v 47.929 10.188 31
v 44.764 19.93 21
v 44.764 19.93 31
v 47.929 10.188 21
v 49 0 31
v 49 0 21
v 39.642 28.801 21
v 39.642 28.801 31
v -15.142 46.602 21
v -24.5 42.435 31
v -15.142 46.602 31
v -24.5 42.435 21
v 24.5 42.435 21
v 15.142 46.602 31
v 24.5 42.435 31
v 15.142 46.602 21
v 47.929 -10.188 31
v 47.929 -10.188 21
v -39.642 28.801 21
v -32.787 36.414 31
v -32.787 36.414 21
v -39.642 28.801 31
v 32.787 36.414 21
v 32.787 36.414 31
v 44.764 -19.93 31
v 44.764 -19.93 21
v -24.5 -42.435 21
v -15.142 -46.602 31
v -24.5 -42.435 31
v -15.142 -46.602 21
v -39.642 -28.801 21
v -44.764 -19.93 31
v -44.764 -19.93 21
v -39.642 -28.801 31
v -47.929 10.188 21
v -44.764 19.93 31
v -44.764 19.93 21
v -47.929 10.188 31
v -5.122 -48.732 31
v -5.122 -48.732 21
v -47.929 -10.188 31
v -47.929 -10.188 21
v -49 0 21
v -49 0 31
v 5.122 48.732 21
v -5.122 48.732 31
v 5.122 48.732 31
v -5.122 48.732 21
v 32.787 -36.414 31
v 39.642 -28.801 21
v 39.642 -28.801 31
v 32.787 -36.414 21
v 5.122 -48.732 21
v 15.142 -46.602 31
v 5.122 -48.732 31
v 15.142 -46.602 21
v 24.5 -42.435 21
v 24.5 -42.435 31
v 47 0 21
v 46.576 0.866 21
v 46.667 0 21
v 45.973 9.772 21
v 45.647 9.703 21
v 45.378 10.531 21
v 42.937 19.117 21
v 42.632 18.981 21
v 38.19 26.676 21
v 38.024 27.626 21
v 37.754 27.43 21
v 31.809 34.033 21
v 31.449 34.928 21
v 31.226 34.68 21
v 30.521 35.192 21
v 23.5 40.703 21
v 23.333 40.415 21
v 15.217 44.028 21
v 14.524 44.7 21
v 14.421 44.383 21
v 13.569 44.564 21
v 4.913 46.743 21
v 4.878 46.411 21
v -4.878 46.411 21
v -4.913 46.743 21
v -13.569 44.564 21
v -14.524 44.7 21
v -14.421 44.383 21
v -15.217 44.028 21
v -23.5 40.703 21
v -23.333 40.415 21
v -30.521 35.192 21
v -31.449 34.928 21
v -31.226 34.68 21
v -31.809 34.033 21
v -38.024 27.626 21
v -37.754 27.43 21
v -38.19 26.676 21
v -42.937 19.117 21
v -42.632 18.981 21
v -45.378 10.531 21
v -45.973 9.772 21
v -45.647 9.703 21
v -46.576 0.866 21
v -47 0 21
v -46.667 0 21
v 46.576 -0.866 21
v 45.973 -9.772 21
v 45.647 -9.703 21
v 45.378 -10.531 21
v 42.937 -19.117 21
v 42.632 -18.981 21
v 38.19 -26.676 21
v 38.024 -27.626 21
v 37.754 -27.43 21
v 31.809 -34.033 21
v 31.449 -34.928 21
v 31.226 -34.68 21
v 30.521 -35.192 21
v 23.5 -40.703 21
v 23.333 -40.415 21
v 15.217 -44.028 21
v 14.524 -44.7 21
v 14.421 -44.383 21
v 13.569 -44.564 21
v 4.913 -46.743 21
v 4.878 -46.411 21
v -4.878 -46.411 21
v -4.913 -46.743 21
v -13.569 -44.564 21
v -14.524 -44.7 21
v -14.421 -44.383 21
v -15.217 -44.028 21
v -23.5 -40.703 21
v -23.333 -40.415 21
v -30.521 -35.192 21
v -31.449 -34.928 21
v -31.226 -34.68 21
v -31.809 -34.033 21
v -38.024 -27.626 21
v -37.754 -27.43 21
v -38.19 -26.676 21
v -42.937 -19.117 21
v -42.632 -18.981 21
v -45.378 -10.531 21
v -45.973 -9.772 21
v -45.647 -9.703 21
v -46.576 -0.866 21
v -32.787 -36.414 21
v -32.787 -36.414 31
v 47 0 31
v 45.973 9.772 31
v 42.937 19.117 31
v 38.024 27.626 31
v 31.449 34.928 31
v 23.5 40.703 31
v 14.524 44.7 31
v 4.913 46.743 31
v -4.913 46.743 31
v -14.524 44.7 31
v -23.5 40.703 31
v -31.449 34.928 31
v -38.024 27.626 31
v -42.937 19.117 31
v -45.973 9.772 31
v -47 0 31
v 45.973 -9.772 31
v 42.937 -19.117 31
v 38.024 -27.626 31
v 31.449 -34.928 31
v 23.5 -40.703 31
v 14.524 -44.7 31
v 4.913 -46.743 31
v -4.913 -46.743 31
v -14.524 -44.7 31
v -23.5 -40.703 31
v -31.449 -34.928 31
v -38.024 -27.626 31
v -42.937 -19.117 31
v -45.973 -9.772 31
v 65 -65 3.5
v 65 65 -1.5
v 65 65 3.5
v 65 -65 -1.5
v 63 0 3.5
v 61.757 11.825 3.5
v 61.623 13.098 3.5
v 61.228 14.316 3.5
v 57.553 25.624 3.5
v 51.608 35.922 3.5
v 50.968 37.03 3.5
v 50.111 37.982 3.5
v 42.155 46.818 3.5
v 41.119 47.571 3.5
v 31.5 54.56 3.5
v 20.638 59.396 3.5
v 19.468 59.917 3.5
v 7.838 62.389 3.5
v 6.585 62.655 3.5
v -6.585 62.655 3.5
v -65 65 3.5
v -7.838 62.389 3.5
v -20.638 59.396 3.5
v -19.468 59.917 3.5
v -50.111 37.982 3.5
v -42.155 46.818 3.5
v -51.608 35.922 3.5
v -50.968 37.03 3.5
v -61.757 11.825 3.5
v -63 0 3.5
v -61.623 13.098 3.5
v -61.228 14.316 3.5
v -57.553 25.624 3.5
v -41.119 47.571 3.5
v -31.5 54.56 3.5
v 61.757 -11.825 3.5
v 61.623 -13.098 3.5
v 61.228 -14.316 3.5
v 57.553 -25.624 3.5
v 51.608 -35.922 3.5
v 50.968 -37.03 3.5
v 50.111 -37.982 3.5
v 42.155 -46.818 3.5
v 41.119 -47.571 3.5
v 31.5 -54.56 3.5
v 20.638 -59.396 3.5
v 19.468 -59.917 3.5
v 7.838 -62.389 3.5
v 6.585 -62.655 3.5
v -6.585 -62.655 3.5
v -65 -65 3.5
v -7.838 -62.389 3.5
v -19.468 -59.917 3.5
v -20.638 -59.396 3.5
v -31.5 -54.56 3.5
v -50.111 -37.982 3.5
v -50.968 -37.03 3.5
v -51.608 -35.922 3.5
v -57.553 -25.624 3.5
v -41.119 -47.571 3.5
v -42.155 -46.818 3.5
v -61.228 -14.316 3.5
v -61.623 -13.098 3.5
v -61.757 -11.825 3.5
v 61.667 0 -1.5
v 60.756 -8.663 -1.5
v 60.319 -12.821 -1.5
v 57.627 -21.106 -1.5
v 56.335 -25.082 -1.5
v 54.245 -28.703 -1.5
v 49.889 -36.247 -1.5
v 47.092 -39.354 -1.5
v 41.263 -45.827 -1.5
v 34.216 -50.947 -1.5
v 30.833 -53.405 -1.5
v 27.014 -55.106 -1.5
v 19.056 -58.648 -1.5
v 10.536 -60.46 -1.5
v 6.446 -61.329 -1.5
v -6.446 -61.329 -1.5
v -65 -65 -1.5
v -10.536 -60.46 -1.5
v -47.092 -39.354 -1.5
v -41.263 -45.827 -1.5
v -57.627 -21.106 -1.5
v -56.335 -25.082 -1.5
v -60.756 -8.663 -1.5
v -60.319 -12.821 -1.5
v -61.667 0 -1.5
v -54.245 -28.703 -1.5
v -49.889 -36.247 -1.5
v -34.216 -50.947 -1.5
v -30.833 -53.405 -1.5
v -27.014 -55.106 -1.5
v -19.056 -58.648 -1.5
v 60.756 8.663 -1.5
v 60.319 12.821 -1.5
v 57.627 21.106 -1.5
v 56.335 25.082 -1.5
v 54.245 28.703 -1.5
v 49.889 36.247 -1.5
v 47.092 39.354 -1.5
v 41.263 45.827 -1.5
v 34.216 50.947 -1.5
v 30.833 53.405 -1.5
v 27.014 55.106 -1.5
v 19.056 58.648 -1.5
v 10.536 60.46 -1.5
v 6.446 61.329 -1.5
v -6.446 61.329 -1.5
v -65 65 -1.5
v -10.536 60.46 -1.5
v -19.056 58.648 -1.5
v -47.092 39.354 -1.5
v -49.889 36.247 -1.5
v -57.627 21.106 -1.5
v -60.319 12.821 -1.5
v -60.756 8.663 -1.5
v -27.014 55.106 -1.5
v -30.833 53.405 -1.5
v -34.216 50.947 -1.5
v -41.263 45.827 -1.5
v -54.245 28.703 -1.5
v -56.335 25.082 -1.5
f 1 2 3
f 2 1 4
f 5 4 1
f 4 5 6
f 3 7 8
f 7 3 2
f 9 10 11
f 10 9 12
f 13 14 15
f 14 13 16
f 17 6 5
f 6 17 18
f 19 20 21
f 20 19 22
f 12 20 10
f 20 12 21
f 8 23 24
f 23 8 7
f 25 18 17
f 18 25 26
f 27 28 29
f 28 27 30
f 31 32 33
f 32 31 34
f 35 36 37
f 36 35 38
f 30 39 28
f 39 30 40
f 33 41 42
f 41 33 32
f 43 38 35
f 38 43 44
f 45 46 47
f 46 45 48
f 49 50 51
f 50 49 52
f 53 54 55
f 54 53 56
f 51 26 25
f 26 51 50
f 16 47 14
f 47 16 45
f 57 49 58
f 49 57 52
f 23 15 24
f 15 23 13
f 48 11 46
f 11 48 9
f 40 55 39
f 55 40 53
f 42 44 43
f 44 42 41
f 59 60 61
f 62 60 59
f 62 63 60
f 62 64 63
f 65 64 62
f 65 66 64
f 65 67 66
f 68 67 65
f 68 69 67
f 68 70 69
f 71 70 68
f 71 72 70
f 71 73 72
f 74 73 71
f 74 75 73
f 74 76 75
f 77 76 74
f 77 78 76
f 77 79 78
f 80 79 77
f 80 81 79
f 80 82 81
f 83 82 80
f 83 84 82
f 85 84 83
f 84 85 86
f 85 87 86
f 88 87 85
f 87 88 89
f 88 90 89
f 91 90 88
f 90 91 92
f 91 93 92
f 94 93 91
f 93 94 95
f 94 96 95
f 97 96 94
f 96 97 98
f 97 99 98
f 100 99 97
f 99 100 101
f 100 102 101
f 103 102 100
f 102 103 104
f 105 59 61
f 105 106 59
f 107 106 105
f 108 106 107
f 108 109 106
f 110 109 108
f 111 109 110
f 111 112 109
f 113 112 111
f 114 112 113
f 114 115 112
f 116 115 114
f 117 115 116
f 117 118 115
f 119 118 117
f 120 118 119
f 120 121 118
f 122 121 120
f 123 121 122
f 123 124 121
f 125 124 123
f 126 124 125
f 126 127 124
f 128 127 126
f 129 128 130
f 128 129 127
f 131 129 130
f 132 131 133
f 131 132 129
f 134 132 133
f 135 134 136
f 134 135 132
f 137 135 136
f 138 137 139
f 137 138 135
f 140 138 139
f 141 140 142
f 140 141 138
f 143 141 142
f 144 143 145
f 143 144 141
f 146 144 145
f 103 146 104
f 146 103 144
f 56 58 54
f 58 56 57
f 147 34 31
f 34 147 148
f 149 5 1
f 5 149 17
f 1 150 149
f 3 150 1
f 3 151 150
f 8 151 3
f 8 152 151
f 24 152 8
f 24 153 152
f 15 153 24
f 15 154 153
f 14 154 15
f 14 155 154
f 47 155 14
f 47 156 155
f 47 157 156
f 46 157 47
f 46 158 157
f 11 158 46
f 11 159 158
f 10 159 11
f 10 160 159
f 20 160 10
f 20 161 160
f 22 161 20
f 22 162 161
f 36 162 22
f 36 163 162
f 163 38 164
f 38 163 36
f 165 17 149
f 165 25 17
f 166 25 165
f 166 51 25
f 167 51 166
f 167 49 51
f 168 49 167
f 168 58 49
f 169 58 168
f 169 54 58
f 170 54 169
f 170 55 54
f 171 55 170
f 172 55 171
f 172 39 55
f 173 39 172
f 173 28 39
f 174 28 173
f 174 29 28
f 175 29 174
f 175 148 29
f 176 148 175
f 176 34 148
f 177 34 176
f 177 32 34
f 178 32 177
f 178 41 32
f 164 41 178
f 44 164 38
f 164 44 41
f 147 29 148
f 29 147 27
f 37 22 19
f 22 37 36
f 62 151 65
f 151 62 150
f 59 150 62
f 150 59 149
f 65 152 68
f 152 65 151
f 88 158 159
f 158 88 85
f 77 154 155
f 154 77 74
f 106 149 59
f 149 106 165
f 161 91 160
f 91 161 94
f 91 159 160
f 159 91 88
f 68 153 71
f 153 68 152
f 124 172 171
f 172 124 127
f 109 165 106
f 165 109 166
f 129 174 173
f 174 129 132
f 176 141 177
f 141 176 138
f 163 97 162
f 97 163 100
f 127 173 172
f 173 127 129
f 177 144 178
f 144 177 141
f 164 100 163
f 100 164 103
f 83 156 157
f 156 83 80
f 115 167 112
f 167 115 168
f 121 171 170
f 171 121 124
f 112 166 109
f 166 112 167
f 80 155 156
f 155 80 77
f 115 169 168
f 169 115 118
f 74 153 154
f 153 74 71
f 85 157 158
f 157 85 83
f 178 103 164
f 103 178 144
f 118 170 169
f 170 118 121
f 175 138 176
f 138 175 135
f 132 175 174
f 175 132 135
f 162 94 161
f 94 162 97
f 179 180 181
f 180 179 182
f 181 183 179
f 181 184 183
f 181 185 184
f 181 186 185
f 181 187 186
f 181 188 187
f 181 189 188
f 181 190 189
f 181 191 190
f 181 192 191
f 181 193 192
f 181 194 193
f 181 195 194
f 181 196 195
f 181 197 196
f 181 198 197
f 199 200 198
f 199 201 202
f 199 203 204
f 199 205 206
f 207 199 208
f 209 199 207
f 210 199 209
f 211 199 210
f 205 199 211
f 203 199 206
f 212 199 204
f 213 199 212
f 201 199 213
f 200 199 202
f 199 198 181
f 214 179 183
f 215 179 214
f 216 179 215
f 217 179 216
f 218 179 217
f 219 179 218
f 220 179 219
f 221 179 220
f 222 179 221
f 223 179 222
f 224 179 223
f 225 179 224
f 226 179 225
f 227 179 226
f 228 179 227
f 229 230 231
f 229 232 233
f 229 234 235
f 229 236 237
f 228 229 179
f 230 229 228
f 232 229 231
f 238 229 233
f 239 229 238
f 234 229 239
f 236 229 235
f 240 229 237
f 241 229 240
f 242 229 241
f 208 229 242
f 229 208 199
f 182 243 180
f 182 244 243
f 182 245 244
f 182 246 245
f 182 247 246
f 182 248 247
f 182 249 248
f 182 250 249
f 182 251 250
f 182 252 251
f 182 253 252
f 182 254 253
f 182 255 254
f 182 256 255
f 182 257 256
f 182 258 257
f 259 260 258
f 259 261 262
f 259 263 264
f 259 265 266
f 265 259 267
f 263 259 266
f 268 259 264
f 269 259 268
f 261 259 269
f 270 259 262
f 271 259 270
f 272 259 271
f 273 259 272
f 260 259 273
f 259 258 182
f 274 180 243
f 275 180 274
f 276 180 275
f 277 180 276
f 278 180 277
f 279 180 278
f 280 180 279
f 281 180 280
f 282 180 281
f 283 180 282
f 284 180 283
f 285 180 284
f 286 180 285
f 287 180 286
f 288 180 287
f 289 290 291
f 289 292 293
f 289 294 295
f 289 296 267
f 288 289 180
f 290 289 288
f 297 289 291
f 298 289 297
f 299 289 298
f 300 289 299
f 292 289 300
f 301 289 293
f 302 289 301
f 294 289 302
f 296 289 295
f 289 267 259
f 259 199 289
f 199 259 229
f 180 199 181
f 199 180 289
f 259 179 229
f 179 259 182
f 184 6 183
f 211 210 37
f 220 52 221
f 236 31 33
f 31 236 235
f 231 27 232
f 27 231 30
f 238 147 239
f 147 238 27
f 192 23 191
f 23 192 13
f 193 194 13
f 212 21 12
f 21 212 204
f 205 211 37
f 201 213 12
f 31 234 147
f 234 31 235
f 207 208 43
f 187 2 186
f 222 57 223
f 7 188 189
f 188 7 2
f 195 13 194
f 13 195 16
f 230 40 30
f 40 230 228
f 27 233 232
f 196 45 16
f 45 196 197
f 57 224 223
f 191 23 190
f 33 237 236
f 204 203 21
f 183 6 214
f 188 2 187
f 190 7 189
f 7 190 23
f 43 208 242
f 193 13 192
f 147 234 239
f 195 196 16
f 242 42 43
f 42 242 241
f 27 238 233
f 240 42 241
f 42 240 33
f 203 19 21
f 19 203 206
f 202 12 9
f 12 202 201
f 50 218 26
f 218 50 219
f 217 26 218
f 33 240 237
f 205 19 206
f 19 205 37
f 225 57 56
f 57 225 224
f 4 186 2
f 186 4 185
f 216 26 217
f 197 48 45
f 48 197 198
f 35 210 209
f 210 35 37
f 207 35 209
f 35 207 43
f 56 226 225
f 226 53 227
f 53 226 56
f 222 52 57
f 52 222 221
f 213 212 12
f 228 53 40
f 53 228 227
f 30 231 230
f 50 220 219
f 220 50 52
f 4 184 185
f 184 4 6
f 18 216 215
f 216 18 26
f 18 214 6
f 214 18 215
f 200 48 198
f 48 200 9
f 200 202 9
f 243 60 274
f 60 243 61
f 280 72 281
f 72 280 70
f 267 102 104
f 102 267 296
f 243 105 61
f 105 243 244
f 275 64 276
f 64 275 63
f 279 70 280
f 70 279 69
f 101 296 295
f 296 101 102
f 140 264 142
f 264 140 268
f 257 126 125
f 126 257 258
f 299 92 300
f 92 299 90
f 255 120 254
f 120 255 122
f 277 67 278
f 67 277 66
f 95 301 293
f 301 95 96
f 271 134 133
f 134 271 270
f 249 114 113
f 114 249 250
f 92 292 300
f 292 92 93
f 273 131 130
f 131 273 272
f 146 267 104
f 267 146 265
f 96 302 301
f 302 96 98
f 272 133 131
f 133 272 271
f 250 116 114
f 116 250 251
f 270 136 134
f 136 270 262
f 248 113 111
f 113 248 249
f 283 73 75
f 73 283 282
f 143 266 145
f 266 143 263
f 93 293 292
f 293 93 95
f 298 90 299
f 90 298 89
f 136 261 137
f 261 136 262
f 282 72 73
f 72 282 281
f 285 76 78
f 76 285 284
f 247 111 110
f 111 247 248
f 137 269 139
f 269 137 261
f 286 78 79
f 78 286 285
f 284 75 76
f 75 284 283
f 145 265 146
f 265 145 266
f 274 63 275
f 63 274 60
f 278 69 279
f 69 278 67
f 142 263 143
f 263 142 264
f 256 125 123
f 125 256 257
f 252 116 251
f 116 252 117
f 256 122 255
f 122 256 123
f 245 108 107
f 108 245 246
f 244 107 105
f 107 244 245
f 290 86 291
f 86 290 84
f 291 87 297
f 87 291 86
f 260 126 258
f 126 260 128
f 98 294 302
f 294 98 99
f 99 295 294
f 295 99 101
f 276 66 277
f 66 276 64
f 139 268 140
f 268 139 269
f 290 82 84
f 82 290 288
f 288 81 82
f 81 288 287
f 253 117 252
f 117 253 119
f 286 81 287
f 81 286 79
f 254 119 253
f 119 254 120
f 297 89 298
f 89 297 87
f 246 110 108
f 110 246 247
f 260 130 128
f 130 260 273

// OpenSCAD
 // CSG.scad - Basic example of CSG usage


translate([0,0,1]) {
     thing();
}

module base() {
        cube([130,130,5],center=true);
        cylinder(h=20,r1=65,r2=49);
}

module thing() {
    difference(){
            translate([0,0,20]) {
                cylinder(10, r=49);
            }
             translate([0,0,18]) {
                cylinder(15, r=47);
            }
     }
     difference(){
            base();
            cylinder(45, r1=75, r2=45, center = true);
      }
}
